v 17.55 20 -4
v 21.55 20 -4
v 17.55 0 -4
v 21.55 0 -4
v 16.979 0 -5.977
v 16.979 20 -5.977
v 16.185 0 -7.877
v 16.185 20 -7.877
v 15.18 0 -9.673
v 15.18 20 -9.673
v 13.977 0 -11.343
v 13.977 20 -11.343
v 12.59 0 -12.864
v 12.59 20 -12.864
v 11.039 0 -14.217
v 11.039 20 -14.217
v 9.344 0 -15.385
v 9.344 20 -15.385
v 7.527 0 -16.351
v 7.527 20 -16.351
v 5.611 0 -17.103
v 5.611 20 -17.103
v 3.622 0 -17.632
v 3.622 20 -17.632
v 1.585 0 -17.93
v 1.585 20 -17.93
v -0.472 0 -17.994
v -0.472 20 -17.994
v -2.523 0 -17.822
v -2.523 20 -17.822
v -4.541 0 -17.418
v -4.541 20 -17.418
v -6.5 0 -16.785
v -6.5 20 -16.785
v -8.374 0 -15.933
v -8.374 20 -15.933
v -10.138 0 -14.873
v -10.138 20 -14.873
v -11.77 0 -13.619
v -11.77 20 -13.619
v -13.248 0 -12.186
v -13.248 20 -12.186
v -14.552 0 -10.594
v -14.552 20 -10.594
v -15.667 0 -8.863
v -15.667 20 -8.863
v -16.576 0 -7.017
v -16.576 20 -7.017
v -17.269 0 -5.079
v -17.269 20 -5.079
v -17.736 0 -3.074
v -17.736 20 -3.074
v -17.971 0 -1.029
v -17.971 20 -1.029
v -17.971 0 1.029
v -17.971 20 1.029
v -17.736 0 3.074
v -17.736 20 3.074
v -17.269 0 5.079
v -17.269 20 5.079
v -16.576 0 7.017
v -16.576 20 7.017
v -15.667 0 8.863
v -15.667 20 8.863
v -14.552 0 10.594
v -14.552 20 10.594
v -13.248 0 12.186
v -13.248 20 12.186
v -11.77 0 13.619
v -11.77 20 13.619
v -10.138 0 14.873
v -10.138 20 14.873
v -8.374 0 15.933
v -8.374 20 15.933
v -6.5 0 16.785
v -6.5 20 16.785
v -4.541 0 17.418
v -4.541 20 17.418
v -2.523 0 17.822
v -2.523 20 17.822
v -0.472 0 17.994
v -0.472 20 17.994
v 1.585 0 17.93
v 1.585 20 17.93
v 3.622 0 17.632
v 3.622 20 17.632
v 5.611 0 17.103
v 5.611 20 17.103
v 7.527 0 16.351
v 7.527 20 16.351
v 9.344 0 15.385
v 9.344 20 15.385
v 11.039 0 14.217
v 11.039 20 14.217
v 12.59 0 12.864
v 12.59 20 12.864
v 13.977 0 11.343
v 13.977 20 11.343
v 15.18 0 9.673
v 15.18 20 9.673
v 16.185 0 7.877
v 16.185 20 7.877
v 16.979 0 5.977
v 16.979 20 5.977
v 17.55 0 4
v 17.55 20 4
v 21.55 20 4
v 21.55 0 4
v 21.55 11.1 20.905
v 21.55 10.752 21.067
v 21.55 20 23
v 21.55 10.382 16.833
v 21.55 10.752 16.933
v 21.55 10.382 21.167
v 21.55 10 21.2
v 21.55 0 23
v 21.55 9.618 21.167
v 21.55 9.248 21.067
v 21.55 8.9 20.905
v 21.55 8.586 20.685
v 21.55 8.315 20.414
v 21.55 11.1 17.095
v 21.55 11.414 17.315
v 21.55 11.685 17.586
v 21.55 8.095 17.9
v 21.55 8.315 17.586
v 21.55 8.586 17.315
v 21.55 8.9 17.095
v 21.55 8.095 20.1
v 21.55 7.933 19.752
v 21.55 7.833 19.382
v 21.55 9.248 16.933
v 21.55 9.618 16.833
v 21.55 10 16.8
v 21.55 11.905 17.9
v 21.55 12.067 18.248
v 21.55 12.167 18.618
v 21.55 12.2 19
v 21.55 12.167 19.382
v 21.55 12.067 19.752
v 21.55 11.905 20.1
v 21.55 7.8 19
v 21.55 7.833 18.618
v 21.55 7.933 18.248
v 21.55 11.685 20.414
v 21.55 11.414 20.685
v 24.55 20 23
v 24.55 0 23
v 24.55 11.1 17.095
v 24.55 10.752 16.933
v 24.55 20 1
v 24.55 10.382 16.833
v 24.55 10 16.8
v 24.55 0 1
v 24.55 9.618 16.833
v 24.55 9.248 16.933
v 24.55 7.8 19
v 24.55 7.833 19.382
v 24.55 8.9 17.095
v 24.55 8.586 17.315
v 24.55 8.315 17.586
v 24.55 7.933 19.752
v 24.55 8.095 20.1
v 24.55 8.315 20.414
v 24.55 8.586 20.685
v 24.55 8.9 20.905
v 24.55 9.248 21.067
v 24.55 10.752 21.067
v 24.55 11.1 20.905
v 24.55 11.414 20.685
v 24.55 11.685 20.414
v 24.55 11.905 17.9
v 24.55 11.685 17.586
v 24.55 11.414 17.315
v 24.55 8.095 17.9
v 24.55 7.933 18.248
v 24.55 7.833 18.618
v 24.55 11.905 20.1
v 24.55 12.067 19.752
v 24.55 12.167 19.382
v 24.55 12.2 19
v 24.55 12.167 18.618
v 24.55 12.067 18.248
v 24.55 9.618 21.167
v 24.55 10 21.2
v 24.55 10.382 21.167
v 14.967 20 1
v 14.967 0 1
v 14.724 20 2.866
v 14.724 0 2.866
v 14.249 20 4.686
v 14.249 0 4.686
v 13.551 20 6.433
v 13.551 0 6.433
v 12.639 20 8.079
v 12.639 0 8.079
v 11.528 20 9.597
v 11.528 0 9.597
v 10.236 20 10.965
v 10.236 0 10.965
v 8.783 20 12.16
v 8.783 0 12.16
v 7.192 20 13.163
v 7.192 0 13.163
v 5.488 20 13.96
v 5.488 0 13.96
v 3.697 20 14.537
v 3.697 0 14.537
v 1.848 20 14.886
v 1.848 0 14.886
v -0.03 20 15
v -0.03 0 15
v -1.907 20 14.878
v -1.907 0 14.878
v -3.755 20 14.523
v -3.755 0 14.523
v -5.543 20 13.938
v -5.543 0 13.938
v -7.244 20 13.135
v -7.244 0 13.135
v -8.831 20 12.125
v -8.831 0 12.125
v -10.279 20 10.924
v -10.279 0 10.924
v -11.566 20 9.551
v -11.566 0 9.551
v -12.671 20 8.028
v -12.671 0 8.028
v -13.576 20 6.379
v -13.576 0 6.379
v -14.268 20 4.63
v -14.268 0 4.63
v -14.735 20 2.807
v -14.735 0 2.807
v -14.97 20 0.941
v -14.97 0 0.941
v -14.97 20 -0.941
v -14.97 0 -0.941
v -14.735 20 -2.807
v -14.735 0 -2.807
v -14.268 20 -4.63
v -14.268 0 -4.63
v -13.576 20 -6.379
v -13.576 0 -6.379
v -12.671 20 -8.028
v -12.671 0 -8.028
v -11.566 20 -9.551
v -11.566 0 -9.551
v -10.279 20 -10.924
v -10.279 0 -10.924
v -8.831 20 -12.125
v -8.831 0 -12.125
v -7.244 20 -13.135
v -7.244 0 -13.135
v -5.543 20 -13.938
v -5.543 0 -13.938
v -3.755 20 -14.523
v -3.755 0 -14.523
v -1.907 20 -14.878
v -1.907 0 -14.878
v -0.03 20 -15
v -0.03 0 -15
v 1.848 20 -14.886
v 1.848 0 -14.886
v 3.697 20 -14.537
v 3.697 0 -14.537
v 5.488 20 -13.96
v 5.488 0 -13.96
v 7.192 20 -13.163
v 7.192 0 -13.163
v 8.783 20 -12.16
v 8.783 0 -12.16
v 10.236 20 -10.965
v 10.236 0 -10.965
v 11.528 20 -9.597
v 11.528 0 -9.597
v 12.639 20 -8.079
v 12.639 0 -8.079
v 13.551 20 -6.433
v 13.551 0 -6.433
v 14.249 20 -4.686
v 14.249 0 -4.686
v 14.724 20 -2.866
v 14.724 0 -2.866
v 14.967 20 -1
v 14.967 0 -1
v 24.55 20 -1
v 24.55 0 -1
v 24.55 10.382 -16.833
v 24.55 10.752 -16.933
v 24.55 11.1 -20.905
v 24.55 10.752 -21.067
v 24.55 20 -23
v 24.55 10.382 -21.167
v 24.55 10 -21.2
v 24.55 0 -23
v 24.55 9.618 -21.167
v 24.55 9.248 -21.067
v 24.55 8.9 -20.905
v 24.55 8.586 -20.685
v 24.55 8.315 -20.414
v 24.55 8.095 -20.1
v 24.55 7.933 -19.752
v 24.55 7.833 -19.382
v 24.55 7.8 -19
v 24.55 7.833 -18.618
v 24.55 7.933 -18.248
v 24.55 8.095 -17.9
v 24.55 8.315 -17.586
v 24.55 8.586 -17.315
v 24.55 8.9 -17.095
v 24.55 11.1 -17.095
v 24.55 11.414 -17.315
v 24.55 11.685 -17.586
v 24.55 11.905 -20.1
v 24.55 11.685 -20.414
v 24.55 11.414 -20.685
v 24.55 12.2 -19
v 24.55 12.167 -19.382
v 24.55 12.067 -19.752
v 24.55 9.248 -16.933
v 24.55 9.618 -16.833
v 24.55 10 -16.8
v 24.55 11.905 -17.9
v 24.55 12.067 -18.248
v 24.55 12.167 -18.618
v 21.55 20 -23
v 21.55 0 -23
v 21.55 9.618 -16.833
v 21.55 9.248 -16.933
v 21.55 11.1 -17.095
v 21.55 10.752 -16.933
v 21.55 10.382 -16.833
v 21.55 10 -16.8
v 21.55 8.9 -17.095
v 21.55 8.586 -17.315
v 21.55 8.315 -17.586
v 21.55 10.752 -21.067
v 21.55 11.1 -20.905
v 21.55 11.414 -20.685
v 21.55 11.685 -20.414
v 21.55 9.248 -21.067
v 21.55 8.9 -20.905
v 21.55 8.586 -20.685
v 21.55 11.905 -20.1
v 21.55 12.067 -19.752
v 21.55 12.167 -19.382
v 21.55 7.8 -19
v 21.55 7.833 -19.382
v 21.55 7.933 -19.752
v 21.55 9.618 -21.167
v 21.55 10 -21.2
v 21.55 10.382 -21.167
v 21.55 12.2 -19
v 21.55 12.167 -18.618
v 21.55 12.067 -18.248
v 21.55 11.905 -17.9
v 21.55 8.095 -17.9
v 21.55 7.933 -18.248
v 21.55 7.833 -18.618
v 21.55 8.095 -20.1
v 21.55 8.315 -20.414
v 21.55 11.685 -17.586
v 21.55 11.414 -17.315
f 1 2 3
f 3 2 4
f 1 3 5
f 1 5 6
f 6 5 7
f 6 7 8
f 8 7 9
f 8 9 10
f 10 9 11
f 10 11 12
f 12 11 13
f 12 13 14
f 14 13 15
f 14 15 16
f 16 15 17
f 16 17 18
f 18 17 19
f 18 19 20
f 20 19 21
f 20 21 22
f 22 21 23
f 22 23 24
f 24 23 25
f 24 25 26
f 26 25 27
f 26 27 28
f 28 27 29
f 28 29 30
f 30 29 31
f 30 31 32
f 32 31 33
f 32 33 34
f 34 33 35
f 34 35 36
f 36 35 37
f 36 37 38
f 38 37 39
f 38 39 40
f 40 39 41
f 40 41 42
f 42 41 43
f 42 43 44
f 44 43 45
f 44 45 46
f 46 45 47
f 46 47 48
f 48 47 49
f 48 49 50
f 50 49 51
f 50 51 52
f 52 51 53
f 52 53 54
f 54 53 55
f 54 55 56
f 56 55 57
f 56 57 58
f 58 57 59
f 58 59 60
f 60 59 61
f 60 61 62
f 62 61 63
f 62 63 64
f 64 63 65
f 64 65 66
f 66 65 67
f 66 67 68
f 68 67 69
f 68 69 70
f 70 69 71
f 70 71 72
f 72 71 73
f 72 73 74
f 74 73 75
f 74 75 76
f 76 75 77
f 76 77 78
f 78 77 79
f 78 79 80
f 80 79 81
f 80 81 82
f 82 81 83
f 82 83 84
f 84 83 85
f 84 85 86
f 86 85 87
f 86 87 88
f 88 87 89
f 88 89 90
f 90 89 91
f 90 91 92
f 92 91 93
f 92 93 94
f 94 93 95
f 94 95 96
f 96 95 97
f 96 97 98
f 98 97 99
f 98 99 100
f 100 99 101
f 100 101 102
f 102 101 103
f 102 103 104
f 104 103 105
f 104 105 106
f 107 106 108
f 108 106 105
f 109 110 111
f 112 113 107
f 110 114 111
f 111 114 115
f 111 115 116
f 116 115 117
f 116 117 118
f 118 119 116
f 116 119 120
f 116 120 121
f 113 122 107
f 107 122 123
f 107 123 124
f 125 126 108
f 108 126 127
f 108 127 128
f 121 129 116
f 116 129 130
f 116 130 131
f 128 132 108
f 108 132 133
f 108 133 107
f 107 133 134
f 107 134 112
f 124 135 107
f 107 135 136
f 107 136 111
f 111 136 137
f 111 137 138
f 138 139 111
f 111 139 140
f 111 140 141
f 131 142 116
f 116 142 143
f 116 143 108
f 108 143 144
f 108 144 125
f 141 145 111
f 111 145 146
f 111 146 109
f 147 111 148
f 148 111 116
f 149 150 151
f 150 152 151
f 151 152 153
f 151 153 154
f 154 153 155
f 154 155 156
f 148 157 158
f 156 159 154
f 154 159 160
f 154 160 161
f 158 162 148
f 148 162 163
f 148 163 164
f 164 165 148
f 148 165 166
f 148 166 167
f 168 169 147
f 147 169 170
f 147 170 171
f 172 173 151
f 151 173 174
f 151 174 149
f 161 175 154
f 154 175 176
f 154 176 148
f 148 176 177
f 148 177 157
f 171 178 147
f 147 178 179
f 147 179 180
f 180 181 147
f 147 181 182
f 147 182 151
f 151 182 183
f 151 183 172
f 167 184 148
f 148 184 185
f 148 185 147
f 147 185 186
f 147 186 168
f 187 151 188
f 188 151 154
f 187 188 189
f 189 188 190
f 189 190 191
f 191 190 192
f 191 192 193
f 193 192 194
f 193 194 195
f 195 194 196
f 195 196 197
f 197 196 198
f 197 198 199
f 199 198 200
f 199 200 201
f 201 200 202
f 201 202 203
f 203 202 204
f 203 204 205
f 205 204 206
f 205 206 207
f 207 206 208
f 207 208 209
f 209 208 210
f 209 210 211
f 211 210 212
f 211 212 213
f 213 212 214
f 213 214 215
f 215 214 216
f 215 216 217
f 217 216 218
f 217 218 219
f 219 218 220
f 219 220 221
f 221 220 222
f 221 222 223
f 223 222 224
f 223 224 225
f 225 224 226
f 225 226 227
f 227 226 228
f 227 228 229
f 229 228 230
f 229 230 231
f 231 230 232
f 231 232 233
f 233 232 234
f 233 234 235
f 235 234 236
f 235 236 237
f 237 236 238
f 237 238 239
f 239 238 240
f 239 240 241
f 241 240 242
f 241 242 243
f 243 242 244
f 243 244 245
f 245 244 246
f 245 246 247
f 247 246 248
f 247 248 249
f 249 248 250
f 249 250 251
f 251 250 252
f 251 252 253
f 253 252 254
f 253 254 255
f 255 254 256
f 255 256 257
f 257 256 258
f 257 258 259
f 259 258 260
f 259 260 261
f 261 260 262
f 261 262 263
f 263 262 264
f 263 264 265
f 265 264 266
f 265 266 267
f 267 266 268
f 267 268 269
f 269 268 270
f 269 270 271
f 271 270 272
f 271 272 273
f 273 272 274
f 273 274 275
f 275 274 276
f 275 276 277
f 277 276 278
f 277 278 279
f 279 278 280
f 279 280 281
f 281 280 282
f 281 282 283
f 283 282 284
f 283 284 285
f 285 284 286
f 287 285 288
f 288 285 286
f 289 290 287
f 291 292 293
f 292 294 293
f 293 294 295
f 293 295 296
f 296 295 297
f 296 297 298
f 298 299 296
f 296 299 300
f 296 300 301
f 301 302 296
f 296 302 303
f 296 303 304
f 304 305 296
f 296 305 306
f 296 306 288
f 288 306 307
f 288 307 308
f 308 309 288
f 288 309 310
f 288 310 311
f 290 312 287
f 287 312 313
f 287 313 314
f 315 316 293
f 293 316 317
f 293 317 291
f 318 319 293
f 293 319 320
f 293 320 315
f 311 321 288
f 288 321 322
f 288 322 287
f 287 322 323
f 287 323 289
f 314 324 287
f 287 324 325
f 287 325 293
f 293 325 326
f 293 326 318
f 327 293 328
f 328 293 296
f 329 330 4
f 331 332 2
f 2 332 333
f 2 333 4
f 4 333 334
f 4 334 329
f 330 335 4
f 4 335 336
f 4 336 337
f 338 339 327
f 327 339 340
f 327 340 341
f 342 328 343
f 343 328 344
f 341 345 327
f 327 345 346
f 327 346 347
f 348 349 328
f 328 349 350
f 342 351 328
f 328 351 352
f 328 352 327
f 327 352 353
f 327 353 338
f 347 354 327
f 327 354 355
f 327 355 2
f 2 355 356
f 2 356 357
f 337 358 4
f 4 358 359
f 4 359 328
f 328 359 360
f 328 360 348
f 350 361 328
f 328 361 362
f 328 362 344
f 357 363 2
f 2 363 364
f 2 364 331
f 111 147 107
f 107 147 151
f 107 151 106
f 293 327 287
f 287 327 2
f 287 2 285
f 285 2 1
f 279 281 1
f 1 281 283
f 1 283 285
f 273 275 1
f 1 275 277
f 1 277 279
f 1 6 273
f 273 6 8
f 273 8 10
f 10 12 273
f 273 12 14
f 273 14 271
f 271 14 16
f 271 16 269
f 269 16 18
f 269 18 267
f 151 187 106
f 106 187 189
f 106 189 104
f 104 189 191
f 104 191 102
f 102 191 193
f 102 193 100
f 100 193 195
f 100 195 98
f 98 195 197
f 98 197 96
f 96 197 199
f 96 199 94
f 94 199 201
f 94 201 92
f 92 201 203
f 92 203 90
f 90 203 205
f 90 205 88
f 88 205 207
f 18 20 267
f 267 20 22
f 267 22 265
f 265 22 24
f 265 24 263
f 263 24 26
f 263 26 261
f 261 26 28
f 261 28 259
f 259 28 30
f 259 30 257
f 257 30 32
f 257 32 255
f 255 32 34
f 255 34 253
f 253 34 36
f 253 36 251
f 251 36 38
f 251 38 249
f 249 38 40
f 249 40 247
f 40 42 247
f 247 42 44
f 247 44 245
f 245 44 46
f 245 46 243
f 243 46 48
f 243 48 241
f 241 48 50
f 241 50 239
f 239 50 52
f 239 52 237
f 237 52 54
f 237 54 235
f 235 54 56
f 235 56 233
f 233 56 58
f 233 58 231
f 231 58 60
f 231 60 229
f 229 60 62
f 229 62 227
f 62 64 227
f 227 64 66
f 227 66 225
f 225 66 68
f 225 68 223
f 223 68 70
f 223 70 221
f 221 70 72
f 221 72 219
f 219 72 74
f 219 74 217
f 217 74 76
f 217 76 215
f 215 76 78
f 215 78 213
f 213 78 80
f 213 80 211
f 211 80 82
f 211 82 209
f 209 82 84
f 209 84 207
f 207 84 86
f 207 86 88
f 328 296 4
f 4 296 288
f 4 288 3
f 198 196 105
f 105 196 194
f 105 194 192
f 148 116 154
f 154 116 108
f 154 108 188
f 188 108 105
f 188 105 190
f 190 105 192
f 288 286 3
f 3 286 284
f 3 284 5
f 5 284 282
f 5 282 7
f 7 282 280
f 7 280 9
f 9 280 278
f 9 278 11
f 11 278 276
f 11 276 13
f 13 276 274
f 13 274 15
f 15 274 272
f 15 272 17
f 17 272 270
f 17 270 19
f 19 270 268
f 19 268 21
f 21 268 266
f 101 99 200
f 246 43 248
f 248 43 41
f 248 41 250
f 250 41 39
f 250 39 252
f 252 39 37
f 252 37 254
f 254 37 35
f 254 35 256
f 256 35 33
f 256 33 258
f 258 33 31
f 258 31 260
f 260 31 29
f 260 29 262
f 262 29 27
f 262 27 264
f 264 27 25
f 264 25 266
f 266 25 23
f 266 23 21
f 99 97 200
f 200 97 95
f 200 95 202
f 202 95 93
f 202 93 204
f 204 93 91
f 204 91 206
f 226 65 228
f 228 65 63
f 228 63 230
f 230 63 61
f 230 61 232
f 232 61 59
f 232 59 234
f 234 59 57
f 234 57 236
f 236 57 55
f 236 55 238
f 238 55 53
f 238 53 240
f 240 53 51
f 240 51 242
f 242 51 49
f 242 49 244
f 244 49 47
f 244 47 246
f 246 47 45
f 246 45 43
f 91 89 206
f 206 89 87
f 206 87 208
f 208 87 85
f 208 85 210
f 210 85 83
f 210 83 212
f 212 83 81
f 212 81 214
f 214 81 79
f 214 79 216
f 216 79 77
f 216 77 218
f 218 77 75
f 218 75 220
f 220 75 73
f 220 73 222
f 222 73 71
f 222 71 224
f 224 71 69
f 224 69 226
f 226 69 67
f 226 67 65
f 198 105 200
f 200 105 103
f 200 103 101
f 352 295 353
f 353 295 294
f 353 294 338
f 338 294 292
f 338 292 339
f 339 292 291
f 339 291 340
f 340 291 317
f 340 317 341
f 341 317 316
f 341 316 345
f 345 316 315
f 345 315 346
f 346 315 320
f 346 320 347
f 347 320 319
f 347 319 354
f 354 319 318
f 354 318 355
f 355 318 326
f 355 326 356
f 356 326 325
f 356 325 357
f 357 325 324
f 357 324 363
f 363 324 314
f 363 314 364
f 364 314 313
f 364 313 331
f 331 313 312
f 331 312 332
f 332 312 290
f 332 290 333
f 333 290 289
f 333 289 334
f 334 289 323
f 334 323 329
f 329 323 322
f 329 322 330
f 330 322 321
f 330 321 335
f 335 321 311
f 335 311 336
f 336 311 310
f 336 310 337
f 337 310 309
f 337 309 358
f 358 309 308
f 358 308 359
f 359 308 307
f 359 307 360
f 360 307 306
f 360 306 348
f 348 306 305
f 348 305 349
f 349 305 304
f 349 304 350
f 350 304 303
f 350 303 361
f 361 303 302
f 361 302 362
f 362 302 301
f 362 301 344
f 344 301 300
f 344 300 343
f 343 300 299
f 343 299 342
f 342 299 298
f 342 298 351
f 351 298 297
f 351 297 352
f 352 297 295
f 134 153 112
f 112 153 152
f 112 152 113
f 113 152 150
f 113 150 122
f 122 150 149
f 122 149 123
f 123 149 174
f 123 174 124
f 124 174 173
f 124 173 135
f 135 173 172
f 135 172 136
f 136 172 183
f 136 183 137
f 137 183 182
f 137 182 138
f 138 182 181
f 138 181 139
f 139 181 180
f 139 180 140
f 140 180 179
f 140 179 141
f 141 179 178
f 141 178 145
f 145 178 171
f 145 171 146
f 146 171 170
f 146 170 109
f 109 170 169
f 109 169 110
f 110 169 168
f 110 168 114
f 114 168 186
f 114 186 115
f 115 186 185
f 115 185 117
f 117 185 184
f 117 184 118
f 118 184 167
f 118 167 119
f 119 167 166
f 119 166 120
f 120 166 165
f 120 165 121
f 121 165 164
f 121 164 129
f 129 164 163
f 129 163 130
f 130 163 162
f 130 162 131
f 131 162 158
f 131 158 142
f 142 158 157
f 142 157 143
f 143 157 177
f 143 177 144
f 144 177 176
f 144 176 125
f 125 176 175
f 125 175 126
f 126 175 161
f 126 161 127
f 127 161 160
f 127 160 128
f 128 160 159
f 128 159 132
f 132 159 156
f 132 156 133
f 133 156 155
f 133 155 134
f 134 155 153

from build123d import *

# Parameters (mm, degrees)
BOSS_EXTRUDE1_DEPTH = 20
SKETCH2_R           = 2.2
CUT_EXTRUDE1_DEPTH  = 3


with BuildPart() as part:
    # Sketch1 → Boss-Extrude1 (new body)
    with BuildSketch(Plane(origin=(0, 0, 0), x_dir=(1, 0, 0), z_dir=(0, 1, 0))):
        with BuildLine():
            Line((24.549928775, -5.633868186), (24.549928775, -1))
            Line((24.549928775, -1), (14.966629547, -1))
            ThreePointArc((14.966629547, -1), (-15, 0), (14.966629547, 1))
            Line((14.966629547, 1), (24.549928775, 1))
            Line((24.549928775, 1), (24.549928775, 9.723102863))
            Line((24.549928775, 9.723102863), (24.549928775, 23))
            Line((24.549928775, 23), (21.549928775, 23))
            Line((21.549928775, 23), (21.549928775, 4))
            Line((21.549928775, 4), (17.549928775, 4))
            ThreePointArc((17.549928775, 4), (-18, 0), (17.549928775, -4))
            Line((17.549928775, -4), (21.549928775, -4))
            Line((21.549928775, -4), (21.549928775, -23))
            Line((21.549928775, -23), (24.549928775, -23))
            Line((24.549928775, -23), (24.549928775, -5.633868186))
        make_face()
    extrude(amount=BOSS_EXTRUDE1_DEPTH)

    # Sketch2 → Cut-Extrude1 (cut)
    with BuildSketch(Plane(origin=(24.549928775, 0, 0), x_dir=(0, 0, -1), z_dir=(1, 0, 0))):
        with Locations((19, 10)):
            Circle(SKETCH2_R)
        with Locations((-19, 10)):
            Circle(SKETCH2_R)
    extrude(amount=-CUT_EXTRUDE1_DEPTH, mode=Mode.SUBTRACT)


solid = part.part
